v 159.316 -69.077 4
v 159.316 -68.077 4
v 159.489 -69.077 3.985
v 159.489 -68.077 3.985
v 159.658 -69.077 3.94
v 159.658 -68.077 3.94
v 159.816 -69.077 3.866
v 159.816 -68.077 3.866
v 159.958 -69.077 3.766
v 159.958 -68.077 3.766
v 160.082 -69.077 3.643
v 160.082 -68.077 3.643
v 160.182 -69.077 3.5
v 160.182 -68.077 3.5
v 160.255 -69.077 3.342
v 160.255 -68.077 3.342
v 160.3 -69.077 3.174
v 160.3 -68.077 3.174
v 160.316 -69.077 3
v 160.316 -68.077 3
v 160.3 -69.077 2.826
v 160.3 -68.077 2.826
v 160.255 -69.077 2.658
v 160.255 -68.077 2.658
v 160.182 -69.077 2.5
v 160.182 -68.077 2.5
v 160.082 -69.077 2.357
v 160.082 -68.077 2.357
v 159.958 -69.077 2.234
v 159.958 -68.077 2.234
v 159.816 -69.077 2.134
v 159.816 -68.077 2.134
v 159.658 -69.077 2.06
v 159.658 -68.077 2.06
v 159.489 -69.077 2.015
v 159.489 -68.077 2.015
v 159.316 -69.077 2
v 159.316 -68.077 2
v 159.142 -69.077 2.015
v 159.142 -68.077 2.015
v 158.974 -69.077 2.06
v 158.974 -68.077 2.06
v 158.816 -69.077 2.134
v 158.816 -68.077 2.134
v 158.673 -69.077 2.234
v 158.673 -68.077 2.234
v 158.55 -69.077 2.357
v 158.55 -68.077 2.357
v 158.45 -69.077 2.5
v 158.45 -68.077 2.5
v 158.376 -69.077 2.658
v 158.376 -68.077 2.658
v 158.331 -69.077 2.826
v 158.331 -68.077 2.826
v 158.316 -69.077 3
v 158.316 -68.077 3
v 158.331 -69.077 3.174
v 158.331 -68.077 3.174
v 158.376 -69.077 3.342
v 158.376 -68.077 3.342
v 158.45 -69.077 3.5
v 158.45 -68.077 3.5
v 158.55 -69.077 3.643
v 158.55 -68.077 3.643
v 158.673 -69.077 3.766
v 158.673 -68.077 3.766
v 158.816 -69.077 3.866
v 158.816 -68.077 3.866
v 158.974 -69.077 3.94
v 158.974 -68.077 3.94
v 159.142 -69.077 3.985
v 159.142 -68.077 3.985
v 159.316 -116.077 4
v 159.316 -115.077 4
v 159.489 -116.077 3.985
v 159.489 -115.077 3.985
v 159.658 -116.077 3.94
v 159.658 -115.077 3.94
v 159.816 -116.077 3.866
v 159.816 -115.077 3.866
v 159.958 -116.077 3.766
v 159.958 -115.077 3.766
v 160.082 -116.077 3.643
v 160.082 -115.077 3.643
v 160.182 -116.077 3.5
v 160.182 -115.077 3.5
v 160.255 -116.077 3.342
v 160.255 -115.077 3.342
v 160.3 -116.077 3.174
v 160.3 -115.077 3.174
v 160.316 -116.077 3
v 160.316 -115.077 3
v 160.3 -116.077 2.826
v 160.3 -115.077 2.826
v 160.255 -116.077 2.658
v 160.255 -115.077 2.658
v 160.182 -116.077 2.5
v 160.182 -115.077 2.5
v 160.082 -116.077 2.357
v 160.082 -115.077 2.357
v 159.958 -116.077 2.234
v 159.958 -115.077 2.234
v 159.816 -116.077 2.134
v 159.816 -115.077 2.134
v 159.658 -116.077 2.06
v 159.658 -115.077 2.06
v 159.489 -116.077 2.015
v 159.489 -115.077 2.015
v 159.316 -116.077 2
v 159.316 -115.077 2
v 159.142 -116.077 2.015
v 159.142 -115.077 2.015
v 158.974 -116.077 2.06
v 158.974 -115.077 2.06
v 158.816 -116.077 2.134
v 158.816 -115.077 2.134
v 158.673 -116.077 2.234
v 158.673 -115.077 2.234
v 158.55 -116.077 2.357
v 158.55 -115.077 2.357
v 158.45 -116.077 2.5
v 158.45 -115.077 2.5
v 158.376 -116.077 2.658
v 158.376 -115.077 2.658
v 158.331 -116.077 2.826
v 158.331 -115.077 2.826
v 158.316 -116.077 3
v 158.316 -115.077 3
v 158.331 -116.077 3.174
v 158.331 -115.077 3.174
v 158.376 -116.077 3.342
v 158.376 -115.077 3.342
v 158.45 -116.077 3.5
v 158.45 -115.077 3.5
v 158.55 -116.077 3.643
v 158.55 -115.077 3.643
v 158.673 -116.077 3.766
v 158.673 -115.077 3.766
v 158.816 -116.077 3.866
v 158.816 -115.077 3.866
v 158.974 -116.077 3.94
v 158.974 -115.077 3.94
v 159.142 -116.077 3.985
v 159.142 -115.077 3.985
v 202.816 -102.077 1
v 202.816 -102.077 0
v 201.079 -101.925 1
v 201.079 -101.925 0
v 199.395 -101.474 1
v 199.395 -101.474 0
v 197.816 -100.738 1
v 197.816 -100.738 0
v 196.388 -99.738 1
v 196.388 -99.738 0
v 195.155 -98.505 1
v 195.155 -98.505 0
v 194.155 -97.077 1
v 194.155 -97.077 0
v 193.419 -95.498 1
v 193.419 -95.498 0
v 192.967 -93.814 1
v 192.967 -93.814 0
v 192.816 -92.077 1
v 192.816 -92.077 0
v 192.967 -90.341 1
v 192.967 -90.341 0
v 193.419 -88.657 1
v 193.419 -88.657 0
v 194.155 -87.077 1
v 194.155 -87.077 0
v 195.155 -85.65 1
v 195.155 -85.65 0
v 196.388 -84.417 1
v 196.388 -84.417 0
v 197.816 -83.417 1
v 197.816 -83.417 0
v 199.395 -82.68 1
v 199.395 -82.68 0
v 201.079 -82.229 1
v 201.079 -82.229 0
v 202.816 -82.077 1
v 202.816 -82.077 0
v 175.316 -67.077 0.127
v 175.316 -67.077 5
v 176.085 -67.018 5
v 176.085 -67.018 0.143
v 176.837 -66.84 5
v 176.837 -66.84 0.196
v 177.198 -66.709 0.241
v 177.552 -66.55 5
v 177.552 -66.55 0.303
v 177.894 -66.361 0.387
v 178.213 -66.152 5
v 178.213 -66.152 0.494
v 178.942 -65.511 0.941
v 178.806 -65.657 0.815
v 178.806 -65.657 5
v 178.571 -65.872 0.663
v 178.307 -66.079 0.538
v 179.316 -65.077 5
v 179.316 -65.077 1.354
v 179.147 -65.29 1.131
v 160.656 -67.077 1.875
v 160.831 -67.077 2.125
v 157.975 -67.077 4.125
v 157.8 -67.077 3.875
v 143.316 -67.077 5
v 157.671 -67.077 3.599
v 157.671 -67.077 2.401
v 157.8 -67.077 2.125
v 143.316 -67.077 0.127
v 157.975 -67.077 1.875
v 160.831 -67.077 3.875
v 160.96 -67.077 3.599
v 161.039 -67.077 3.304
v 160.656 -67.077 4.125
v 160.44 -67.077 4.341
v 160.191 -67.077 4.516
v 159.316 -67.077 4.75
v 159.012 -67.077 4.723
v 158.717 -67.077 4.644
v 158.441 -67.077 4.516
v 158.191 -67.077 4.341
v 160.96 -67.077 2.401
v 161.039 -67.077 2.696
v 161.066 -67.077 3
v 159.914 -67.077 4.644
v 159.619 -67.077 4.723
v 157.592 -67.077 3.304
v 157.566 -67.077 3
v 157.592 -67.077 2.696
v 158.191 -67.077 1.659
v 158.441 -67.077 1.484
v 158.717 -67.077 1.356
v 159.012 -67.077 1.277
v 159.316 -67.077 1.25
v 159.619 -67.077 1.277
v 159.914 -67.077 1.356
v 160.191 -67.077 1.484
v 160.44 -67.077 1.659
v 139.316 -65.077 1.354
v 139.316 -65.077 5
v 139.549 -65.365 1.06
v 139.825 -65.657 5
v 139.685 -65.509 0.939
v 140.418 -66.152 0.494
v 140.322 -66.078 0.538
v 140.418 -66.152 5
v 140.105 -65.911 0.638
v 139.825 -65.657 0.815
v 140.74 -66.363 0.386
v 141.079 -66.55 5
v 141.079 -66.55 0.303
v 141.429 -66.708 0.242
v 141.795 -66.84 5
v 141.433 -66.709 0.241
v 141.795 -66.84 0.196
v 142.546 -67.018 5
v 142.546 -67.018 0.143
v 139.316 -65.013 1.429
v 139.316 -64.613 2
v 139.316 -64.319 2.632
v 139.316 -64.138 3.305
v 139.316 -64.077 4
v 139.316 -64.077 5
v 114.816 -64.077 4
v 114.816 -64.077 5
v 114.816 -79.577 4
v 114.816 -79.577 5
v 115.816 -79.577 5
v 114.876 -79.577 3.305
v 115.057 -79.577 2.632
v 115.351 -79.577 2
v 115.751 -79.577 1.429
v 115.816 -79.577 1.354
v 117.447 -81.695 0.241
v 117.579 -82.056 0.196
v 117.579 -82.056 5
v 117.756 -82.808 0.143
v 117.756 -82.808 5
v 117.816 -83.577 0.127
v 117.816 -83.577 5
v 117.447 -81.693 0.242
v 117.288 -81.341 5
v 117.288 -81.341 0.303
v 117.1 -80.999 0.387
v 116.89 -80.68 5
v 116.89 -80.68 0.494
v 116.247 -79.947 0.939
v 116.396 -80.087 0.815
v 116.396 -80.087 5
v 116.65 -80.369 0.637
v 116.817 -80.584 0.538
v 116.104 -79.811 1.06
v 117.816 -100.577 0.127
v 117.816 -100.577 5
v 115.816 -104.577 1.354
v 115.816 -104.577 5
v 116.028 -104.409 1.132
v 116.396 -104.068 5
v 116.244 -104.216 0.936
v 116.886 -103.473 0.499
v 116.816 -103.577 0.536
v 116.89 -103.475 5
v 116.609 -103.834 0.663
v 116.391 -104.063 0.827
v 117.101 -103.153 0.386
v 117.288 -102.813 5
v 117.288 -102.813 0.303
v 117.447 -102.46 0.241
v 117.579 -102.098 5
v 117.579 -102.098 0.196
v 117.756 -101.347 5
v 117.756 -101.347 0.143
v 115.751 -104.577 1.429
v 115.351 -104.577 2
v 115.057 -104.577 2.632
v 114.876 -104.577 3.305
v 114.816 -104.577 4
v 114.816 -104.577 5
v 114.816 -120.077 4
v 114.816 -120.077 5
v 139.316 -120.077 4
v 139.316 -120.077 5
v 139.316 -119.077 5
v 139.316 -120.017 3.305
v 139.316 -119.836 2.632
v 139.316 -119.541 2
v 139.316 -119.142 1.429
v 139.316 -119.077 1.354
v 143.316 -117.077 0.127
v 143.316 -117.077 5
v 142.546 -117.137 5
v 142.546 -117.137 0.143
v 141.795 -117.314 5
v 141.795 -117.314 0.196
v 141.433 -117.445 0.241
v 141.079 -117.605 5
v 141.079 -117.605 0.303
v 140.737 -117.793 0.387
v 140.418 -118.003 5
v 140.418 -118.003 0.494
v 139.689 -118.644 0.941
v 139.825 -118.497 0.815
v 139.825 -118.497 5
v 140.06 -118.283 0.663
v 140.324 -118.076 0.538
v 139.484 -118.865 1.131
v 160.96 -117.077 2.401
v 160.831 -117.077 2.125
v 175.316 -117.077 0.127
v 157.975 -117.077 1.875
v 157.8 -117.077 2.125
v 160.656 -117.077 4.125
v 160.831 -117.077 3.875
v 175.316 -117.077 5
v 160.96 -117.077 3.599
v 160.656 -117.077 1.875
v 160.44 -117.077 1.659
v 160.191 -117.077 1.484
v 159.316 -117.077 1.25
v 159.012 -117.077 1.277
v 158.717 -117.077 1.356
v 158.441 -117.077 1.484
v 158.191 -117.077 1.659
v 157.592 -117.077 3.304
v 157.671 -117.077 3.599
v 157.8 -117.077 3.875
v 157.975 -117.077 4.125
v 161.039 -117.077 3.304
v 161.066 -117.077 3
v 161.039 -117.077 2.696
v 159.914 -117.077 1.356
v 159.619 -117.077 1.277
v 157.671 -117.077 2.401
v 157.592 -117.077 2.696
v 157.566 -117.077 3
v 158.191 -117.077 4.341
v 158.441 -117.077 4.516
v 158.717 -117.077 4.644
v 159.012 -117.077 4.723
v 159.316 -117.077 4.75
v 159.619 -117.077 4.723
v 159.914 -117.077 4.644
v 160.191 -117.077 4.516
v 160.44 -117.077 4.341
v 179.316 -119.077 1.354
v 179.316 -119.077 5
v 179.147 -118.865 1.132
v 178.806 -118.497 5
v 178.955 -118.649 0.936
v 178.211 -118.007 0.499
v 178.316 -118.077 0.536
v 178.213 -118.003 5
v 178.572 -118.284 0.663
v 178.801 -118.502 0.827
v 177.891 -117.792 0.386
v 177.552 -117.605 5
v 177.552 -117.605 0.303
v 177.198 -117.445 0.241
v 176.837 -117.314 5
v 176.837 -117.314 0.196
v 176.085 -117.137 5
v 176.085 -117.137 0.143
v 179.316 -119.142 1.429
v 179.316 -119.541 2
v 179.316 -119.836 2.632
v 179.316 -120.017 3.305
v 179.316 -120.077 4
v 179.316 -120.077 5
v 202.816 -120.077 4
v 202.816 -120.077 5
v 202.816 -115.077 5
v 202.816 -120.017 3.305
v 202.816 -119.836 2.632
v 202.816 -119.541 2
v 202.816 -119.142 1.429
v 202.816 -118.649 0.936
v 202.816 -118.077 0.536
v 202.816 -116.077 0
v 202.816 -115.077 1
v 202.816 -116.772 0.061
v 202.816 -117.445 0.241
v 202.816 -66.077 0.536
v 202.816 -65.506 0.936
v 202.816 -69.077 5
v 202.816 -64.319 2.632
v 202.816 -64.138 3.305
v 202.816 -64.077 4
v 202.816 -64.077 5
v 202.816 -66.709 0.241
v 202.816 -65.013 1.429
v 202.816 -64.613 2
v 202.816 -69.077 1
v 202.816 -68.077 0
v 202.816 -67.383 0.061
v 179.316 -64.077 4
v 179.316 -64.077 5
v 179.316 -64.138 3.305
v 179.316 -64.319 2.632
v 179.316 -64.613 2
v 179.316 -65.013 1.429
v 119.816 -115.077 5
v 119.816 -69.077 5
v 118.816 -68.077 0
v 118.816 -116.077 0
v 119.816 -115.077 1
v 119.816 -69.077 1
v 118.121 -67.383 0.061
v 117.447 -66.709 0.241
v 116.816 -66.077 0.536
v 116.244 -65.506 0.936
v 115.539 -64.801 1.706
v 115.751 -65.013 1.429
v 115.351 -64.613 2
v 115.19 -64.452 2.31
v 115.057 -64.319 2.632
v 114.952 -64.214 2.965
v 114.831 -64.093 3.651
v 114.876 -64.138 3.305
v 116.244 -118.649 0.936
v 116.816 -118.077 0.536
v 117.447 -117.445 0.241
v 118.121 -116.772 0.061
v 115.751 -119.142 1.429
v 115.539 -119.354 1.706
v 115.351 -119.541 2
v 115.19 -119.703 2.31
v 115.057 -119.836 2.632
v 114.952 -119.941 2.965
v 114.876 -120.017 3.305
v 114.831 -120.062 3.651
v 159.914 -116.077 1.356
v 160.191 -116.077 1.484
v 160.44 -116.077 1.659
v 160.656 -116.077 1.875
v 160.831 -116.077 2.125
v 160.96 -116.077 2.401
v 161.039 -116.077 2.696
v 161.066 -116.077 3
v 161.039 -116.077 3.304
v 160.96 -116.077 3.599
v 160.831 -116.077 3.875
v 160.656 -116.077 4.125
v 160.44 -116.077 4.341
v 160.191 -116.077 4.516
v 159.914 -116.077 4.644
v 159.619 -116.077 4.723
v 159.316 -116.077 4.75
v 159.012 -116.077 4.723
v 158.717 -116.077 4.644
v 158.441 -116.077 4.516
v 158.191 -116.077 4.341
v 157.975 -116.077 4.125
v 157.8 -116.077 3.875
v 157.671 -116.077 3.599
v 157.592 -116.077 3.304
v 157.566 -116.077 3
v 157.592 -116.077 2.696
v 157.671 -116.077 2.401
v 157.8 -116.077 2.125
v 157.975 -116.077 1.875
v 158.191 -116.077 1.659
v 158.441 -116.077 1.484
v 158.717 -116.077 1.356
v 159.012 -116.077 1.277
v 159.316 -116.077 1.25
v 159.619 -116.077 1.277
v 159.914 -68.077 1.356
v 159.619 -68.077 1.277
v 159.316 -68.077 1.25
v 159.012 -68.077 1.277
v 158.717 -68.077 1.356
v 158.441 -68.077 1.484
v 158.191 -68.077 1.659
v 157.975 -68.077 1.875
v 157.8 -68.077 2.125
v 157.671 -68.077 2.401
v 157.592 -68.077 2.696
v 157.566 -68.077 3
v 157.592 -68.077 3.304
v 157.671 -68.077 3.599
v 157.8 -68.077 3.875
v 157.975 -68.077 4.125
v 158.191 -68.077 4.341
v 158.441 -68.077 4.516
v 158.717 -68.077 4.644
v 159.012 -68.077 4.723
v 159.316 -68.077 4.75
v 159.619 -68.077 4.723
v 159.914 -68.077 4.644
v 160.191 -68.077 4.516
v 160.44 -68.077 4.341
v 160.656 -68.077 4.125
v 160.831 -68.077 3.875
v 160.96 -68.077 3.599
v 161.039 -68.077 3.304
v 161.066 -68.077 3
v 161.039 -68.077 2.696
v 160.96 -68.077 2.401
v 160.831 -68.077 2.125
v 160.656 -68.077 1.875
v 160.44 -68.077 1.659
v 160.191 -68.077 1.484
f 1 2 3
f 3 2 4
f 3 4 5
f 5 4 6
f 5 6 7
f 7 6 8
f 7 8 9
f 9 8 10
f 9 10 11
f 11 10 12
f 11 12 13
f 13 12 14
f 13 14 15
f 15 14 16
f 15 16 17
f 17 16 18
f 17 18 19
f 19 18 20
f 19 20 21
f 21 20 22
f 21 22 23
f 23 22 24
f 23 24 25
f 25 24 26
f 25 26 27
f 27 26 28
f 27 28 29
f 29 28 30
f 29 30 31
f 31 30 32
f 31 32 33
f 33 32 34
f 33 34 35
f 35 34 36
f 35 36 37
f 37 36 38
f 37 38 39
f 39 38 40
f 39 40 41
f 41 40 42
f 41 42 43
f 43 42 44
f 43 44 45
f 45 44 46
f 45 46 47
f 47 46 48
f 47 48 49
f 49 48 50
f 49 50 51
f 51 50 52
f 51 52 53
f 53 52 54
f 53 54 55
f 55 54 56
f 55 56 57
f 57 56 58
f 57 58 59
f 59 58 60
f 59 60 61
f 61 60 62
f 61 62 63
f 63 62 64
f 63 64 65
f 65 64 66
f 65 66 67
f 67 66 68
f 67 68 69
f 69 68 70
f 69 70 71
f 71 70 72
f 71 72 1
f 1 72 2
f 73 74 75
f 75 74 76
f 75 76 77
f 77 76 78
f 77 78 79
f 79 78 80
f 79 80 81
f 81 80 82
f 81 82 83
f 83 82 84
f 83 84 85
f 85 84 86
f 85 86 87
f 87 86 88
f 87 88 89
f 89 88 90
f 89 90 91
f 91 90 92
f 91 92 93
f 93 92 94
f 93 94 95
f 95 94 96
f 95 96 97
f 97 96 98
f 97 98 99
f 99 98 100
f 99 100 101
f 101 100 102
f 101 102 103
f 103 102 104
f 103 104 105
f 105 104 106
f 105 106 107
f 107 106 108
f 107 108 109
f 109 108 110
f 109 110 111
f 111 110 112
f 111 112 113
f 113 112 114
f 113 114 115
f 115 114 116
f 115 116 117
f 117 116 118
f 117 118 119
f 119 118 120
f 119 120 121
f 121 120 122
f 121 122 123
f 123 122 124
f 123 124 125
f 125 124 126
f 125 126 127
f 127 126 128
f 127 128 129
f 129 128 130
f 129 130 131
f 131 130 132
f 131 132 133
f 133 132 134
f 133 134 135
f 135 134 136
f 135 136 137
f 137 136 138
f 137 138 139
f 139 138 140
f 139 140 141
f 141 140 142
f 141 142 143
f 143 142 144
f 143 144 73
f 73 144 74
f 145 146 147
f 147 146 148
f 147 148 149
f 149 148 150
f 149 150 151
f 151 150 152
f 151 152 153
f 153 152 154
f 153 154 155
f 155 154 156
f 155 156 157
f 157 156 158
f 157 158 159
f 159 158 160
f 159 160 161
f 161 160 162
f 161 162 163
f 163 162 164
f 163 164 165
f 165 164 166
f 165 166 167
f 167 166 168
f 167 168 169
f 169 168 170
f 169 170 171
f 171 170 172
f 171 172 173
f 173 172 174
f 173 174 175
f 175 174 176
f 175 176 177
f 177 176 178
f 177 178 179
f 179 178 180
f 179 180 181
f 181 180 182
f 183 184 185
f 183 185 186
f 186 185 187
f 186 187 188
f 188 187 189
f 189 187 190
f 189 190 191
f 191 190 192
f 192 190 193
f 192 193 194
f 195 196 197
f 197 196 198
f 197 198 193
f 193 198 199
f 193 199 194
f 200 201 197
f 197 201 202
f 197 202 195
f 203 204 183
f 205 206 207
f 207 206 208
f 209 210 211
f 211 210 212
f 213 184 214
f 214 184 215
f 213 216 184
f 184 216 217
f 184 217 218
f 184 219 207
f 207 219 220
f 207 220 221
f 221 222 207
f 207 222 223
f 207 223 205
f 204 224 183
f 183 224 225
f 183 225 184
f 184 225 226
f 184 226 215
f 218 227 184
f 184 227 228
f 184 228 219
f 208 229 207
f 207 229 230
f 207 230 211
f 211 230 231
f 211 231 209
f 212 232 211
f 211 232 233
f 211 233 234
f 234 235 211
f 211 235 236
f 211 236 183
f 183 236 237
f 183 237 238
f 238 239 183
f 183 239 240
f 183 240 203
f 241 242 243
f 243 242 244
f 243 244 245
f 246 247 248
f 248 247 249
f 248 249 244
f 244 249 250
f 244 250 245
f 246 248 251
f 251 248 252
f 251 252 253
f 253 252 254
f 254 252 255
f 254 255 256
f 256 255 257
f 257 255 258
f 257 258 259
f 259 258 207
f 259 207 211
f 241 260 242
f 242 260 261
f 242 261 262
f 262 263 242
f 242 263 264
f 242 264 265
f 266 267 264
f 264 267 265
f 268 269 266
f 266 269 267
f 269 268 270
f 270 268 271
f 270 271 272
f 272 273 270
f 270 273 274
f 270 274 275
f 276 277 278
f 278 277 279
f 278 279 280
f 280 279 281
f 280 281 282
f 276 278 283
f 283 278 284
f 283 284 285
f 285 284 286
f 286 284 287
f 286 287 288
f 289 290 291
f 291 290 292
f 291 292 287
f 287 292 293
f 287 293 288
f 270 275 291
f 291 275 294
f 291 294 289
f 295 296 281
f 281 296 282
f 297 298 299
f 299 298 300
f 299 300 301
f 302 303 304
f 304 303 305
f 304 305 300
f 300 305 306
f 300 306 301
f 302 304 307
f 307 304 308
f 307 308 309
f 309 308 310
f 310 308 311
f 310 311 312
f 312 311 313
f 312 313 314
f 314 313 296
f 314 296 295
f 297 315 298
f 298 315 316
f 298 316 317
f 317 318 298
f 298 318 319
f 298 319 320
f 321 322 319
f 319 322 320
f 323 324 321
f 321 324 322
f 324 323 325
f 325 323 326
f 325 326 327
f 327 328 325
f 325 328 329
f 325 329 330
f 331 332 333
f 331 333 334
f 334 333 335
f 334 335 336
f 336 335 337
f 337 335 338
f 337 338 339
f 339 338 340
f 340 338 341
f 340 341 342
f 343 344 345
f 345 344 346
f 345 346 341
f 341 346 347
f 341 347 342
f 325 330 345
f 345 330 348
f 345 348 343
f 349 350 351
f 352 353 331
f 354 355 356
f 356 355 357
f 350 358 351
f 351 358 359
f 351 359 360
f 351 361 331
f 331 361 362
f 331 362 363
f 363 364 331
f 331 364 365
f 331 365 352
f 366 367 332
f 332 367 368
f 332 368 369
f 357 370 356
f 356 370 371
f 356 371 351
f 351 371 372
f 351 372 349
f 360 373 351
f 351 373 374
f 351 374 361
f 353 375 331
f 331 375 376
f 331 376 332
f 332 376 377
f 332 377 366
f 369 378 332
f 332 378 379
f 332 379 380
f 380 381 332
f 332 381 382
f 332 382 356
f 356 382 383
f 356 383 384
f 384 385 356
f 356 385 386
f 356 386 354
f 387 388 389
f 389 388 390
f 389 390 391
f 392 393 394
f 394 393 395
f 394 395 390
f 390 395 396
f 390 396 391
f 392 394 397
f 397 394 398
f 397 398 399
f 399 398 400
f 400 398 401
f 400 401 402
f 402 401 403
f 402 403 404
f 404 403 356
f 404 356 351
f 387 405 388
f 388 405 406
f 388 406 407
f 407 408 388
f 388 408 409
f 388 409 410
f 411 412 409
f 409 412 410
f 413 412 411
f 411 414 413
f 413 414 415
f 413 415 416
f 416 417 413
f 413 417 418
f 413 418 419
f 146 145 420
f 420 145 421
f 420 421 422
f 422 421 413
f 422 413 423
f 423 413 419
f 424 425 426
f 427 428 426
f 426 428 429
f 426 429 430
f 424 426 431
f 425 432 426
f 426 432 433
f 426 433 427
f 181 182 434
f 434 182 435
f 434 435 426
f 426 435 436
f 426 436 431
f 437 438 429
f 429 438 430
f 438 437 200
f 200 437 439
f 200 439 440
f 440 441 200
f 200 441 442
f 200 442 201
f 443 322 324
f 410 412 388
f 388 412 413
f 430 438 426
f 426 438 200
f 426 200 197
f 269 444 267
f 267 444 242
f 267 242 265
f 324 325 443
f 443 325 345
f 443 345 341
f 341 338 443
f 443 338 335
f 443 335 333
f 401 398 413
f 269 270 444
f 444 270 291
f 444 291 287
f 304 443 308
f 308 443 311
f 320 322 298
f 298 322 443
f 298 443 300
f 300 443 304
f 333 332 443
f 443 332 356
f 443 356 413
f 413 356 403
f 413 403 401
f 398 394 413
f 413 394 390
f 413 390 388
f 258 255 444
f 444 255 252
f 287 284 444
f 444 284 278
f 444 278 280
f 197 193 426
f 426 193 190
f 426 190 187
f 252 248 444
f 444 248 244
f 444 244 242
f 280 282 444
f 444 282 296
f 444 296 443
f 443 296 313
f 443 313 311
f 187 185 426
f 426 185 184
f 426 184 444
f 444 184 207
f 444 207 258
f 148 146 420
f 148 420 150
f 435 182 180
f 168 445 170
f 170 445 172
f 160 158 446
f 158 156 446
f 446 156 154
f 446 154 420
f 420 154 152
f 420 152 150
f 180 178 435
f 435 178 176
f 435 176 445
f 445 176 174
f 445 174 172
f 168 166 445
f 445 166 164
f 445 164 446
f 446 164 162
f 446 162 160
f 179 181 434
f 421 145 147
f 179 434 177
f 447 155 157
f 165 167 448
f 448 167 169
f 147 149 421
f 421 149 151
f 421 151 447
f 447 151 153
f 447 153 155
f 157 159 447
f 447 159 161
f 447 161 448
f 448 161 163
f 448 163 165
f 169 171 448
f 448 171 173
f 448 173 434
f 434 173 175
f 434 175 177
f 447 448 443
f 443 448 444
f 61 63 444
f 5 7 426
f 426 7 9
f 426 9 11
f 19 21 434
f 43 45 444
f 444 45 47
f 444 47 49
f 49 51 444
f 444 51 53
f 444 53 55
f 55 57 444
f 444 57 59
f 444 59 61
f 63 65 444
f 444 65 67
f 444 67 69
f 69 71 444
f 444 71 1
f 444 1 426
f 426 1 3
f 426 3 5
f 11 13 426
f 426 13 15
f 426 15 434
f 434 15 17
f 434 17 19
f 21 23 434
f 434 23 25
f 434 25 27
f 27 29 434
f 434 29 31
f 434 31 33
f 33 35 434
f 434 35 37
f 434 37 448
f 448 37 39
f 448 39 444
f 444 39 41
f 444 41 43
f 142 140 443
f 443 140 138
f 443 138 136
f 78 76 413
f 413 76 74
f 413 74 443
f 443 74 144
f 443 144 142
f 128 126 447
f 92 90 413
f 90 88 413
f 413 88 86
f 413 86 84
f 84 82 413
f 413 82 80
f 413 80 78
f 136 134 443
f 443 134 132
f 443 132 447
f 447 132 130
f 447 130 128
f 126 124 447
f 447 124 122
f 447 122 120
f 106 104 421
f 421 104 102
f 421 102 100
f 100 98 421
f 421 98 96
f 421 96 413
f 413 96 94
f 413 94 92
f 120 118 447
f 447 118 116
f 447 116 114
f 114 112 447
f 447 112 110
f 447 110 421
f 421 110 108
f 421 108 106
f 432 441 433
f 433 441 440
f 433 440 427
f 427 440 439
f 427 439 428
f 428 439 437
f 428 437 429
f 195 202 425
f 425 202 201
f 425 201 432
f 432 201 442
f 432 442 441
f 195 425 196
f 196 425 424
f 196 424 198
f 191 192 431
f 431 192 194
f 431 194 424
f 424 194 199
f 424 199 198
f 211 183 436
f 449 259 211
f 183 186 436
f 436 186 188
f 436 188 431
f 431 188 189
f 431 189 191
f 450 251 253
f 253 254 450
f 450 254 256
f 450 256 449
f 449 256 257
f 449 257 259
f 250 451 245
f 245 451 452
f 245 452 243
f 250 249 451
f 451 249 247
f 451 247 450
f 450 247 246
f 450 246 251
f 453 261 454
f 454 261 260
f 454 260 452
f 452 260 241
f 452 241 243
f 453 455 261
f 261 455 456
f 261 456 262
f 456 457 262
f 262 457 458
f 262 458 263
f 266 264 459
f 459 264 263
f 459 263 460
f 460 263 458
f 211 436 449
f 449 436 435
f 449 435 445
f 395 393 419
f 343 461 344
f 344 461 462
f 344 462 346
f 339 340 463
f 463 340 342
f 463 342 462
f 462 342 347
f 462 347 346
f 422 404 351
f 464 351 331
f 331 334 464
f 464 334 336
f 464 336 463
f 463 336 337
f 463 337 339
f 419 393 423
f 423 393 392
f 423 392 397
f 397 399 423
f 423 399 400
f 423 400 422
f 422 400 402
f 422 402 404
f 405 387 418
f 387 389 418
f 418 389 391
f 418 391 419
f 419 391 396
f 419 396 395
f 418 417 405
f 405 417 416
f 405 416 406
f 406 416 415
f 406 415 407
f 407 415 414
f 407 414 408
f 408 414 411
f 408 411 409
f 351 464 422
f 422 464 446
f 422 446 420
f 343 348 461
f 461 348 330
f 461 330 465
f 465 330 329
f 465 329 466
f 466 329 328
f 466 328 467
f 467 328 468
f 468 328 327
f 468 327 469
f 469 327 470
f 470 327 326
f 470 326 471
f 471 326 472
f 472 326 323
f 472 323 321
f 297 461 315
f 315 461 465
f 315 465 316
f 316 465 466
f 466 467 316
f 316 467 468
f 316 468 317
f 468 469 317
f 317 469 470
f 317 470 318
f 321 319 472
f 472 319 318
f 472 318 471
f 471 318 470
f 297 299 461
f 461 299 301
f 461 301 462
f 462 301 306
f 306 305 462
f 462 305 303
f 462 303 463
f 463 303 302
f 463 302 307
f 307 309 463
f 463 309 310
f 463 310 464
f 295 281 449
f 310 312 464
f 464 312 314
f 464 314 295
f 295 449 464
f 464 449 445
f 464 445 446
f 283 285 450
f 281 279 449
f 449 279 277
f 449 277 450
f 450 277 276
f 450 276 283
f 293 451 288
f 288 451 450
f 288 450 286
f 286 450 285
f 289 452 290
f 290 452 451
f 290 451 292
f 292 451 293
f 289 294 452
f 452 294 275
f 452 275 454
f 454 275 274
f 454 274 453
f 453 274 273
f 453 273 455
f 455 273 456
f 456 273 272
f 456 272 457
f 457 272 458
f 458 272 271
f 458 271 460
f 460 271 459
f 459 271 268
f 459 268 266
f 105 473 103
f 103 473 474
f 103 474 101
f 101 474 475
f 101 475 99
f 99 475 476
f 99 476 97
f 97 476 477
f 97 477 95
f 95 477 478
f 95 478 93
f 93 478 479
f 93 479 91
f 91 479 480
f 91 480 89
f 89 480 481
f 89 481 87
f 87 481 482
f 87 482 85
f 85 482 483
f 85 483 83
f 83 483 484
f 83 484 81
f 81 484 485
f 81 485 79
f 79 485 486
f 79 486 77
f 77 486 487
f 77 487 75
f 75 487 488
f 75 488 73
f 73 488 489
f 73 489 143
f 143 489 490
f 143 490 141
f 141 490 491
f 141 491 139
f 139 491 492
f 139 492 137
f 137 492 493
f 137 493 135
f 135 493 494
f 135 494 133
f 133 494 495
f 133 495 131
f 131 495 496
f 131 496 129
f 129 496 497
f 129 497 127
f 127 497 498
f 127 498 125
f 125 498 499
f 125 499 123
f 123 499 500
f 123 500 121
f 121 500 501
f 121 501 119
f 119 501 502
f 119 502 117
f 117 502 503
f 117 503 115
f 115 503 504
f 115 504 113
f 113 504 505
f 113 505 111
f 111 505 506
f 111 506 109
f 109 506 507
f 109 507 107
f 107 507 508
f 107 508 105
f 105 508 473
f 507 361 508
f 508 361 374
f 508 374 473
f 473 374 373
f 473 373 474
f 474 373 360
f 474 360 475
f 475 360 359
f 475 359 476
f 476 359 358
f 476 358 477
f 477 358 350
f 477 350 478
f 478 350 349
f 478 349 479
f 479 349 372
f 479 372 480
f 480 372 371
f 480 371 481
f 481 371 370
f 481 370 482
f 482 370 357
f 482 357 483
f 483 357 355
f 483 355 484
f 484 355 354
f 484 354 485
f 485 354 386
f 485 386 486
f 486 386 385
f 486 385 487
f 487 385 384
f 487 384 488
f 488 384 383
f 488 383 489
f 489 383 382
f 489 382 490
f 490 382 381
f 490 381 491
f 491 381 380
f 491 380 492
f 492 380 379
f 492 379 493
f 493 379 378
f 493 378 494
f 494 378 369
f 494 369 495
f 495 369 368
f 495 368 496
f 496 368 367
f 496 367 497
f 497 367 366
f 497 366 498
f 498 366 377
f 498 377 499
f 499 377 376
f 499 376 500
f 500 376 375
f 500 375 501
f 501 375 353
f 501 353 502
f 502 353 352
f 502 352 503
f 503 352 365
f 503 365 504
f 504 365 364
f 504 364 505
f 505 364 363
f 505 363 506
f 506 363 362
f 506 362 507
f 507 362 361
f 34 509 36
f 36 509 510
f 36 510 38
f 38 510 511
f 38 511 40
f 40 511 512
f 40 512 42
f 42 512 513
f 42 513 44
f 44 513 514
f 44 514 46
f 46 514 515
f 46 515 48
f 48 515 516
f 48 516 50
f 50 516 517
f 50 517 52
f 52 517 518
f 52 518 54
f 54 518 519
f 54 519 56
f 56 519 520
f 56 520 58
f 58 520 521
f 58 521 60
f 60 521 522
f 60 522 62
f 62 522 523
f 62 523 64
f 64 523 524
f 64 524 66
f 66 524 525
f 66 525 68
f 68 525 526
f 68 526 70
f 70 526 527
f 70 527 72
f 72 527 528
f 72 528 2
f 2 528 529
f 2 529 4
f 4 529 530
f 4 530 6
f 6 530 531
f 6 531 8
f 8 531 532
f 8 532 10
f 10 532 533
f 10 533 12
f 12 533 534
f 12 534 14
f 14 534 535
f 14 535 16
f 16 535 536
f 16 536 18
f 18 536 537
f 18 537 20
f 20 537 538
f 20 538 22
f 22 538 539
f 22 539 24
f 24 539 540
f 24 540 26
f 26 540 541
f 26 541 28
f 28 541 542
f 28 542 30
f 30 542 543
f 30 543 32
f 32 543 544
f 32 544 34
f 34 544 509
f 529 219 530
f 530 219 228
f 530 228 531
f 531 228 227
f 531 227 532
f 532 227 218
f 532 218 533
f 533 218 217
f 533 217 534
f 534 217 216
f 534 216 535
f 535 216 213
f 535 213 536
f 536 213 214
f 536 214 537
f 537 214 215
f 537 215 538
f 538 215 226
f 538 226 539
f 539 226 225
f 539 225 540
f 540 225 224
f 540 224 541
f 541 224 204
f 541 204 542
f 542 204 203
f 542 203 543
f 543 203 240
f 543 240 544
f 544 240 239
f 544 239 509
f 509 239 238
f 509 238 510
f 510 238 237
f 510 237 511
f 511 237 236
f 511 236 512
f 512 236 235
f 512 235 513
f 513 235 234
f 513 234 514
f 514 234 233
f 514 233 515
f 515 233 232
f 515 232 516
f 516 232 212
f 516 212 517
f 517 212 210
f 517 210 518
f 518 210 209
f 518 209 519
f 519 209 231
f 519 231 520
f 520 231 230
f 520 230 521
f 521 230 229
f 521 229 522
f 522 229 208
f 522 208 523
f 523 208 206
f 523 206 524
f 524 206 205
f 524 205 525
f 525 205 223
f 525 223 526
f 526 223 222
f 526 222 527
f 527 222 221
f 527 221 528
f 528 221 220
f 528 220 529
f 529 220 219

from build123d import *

# Parameters (mm, degrees)
Y_KSEKLIK_EKSTR_ZYON1_DEPTH = 5
IZIM6_W                     = 83
IZIM6_H                     = 46
KES_EKSTR_ZYON2_DEPTH       = 4
RADYUS1_R                   = 4
IZIM7_R                     = 1
KES_EKSTR_ZYON3_DEPTH       = 1000
IZIM9_R                     = 1.75
KES_EKSTR_ZYON5_DEPTH       = 1
KES_EKSTR_ZYON6_START       = -1
IZIM10_R                    = 1.75
KES_EKSTR_ZYON6_DEPTH       = 1


with BuildPart() as part:
    # Çizim4 → Yükseklik-Ekstrüzyon1 (new body)
    with BuildSketch(Plane.XY):
        with BuildLine():
            Line((202.815557626, -67.077395959), (202.815557626, -82.077395959))
            ThreePointArc((202.815557626, -82.077395959), (192.815557626, -92.077395959), (202.815557626, -102.077395959))
            Line((202.815557626, -102.077395959), (202.815557626, -117.077395959))
            Line((202.815557626, -117.077395959), (202.815557626, -120.077395959))
            Line((202.815557626, -120.077395959), (179.315557626, -120.077395959))
            Line((179.315557626, -120.077395959), (179.315557626, -119.077395959))
            ThreePointArc((179.315557626, -119.077395959), (177.551625603, -117.605260004), (175.315557626, -117.077395959))
            Line((175.315557626, -117.077395959), (143.315557626, -117.077395959))
            ThreePointArc((143.315557626, -117.077395959), (141.079489648, -117.605260004), (139.315557626, -119.077395959))
            Line((139.315557626, -119.077395959), (139.315557626, -120.077395959))
            Line((139.315557626, -120.077395959), (114.815557626, -120.077395959))
            Line((114.815557626, -120.077395959), (114.815557626, -104.577395959))
            Line((114.815557626, -104.577395959), (115.815557626, -104.577395959))
            ThreePointArc((115.815557626, -104.577395959), (117.287693581, -102.813463937), (117.815557626, -100.577395959))
            Line((117.815557626, -100.577395959), (117.815557626, -83.577395959))
            ThreePointArc((117.815557626, -83.577395959), (117.287693581, -81.341327982), (115.815557626, -79.577395959))
            Line((115.815557626, -79.577395959), (114.815557626, -79.577395959))
            Line((114.815557626, -79.577395959), (114.815557626, -64.077395959))
            Line((114.815557626, -64.077395959), (139.315557626, -64.077395959))
            Line((139.315557626, -64.077395959), (139.315557626, -65.077395959))
            ThreePointArc((139.315557626, -65.077395959), (141.079489648, -66.549531914), (143.315557626, -67.077395959))
            Line((143.315557626, -67.077395959), (175.315557626, -67.077395959))
            ThreePointArc((175.315557626, -67.077395959), (177.551625603, -66.549531914), (179.315557626, -65.077395959))
            Line((179.315557626, -65.077395959), (179.315557626, -64.077395959))
            Line((179.315557626, -64.077395959), (202.815557626, -64.077395959))
            Line((202.815557626, -64.077395959), (202.815557626, -67.077395959))
        make_face()
    extrude(amount=Y_KSEKLIK_EKSTR_ZYON1_DEPTH)

    # Çizim6 → Kes-Ekstrüzyon2 (cut)
    with BuildSketch(Plane.XY.offset(5)):
        with Locations((161.315557626, -92.077395959)):
            Rectangle(IZIM6_W, IZIM6_H)
    extrude(amount=-KES_EKSTR_ZYON2_DEPTH, mode=Mode.SUBTRACT)

    # Radyus1
    # the kernel refuses this fillet: 4 mm, written as the material it takes off along each edge
    with BuildSketch(Plane(origin=(155.315557626, -64.077395959, 0), x_dir=(0, -1, 0), z_dir=(1, 0, 0)), Plane(origin=(226.815557626, -120.077395959, 0), x_dir=(0, 1, 0), z_dir=(-1, 0, 0))) as radyus1_piece_1:
        with BuildLine():
            CenterArc((RADYUS1_R, -RADYUS1_R), RADYUS1_R, 90, 90)
            Line((0, -RADYUS1_R), (-RADYUS1_R * 0.02, -RADYUS1_R))
            Line((-RADYUS1_R * 0.02, -RADYUS1_R), (-RADYUS1_R * 0.02, RADYUS1_R * 0.02))
            Line((-RADYUS1_R * 0.02, RADYUS1_R * 0.02), (RADYUS1_R, RADYUS1_R * 0.02))
            Line((RADYUS1_R, RADYUS1_R * 0.02), (RADYUS1_R, 0))
        make_face()
    extrude(amount=71.5, mode=Mode.SUBTRACT)
    with BuildSketch(Plane(origin=(163.315557626, -120.077395959, 0), x_dir=(0, 1, 0), z_dir=(-1, 0, 0)), Plane(origin=(90.815557626, -64.077395959, 0), x_dir=(0, -1, 0), z_dir=(1, 0, 0))) as radyus1_piece_2:
        with BuildLine():
            CenterArc((RADYUS1_R, -RADYUS1_R), RADYUS1_R, 90, 90)
            Line((0, -RADYUS1_R), (-RADYUS1_R * 0.02, -RADYUS1_R))
            Line((-RADYUS1_R * 0.02, -RADYUS1_R), (-RADYUS1_R * 0.02, RADYUS1_R * 0.02))
            Line((-RADYUS1_R * 0.02, RADYUS1_R * 0.02), (RADYUS1_R, RADYUS1_R * 0.02))
            Line((RADYUS1_R, RADYUS1_R * 0.02), (RADYUS1_R, 0))
        make_face()
    extrude(amount=72.5, mode=Mode.SUBTRACT)
    with BuildSketch(Plane(origin=(114.815557626, -144.077395959, 0), x_dir=(1, 0, 0), z_dir=(0, 1, 0)), Plane(origin=(114.815557626, -103.577395959, 0), x_dir=(1, 0, 0), z_dir=(0, 1, 0))) as radyus1_piece_3:
        with BuildLine():
            CenterArc((RADYUS1_R, -RADYUS1_R), RADYUS1_R, 90, 90)
            Line((0, -RADYUS1_R), (-RADYUS1_R * 0.02, -RADYUS1_R))
            Line((-RADYUS1_R * 0.02, -RADYUS1_R), (-RADYUS1_R * 0.02, RADYUS1_R * 0.02))
            Line((-RADYUS1_R * 0.02, RADYUS1_R * 0.02), (RADYUS1_R, RADYUS1_R * 0.02))
            Line((RADYUS1_R, RADYUS1_R * 0.02), (RADYUS1_R, 0))
        make_face()
    extrude(amount=63.5, mode=Mode.SUBTRACT)

    # Çizim7 → Kes-Ekstrüzyon3 (cut)
    with BuildSketch(Plane(origin=(0, -67.077395959, 0), x_dir=(1, 0, 0), z_dir=(0, 1, 0))):
        with Locations(Location((159.315557626, -3, 0), (0, 0, 270))):
            Circle(IZIM7_R)
    extrude(amount=-KES_EKSTR_ZYON3_DEPTH, mode=Mode.SUBTRACT)

    # Çizim9 → Kes-Ekstrüzyon5 (cut)
    with BuildSketch(Plane(origin=(0, -117.077395959, 0), x_dir=(-1, 0, 0), z_dir=(0, -1, 0))):
        with Locations(Location((-159.315557626, -3, 0), (0, 0, 90))):
            Circle(IZIM9_R)
    extrude(amount=-KES_EKSTR_ZYON5_DEPTH, mode=Mode.SUBTRACT)

    # Çizim10 → Kes-Ekstrüzyon6 (cut)
    with BuildSketch(Plane(origin=(0, -67.077395959, 0), x_dir=(1, 0, 0), z_dir=(0, 1, 0)).offset(KES_EKSTR_ZYON6_START)):
        with Locations(Location((159.315557626, -3, 0), (0, 0, 90))):
            Circle(IZIM10_R)
    extrude(amount=KES_EKSTR_ZYON6_DEPTH, mode=Mode.SUBTRACT)


solid = part.part
